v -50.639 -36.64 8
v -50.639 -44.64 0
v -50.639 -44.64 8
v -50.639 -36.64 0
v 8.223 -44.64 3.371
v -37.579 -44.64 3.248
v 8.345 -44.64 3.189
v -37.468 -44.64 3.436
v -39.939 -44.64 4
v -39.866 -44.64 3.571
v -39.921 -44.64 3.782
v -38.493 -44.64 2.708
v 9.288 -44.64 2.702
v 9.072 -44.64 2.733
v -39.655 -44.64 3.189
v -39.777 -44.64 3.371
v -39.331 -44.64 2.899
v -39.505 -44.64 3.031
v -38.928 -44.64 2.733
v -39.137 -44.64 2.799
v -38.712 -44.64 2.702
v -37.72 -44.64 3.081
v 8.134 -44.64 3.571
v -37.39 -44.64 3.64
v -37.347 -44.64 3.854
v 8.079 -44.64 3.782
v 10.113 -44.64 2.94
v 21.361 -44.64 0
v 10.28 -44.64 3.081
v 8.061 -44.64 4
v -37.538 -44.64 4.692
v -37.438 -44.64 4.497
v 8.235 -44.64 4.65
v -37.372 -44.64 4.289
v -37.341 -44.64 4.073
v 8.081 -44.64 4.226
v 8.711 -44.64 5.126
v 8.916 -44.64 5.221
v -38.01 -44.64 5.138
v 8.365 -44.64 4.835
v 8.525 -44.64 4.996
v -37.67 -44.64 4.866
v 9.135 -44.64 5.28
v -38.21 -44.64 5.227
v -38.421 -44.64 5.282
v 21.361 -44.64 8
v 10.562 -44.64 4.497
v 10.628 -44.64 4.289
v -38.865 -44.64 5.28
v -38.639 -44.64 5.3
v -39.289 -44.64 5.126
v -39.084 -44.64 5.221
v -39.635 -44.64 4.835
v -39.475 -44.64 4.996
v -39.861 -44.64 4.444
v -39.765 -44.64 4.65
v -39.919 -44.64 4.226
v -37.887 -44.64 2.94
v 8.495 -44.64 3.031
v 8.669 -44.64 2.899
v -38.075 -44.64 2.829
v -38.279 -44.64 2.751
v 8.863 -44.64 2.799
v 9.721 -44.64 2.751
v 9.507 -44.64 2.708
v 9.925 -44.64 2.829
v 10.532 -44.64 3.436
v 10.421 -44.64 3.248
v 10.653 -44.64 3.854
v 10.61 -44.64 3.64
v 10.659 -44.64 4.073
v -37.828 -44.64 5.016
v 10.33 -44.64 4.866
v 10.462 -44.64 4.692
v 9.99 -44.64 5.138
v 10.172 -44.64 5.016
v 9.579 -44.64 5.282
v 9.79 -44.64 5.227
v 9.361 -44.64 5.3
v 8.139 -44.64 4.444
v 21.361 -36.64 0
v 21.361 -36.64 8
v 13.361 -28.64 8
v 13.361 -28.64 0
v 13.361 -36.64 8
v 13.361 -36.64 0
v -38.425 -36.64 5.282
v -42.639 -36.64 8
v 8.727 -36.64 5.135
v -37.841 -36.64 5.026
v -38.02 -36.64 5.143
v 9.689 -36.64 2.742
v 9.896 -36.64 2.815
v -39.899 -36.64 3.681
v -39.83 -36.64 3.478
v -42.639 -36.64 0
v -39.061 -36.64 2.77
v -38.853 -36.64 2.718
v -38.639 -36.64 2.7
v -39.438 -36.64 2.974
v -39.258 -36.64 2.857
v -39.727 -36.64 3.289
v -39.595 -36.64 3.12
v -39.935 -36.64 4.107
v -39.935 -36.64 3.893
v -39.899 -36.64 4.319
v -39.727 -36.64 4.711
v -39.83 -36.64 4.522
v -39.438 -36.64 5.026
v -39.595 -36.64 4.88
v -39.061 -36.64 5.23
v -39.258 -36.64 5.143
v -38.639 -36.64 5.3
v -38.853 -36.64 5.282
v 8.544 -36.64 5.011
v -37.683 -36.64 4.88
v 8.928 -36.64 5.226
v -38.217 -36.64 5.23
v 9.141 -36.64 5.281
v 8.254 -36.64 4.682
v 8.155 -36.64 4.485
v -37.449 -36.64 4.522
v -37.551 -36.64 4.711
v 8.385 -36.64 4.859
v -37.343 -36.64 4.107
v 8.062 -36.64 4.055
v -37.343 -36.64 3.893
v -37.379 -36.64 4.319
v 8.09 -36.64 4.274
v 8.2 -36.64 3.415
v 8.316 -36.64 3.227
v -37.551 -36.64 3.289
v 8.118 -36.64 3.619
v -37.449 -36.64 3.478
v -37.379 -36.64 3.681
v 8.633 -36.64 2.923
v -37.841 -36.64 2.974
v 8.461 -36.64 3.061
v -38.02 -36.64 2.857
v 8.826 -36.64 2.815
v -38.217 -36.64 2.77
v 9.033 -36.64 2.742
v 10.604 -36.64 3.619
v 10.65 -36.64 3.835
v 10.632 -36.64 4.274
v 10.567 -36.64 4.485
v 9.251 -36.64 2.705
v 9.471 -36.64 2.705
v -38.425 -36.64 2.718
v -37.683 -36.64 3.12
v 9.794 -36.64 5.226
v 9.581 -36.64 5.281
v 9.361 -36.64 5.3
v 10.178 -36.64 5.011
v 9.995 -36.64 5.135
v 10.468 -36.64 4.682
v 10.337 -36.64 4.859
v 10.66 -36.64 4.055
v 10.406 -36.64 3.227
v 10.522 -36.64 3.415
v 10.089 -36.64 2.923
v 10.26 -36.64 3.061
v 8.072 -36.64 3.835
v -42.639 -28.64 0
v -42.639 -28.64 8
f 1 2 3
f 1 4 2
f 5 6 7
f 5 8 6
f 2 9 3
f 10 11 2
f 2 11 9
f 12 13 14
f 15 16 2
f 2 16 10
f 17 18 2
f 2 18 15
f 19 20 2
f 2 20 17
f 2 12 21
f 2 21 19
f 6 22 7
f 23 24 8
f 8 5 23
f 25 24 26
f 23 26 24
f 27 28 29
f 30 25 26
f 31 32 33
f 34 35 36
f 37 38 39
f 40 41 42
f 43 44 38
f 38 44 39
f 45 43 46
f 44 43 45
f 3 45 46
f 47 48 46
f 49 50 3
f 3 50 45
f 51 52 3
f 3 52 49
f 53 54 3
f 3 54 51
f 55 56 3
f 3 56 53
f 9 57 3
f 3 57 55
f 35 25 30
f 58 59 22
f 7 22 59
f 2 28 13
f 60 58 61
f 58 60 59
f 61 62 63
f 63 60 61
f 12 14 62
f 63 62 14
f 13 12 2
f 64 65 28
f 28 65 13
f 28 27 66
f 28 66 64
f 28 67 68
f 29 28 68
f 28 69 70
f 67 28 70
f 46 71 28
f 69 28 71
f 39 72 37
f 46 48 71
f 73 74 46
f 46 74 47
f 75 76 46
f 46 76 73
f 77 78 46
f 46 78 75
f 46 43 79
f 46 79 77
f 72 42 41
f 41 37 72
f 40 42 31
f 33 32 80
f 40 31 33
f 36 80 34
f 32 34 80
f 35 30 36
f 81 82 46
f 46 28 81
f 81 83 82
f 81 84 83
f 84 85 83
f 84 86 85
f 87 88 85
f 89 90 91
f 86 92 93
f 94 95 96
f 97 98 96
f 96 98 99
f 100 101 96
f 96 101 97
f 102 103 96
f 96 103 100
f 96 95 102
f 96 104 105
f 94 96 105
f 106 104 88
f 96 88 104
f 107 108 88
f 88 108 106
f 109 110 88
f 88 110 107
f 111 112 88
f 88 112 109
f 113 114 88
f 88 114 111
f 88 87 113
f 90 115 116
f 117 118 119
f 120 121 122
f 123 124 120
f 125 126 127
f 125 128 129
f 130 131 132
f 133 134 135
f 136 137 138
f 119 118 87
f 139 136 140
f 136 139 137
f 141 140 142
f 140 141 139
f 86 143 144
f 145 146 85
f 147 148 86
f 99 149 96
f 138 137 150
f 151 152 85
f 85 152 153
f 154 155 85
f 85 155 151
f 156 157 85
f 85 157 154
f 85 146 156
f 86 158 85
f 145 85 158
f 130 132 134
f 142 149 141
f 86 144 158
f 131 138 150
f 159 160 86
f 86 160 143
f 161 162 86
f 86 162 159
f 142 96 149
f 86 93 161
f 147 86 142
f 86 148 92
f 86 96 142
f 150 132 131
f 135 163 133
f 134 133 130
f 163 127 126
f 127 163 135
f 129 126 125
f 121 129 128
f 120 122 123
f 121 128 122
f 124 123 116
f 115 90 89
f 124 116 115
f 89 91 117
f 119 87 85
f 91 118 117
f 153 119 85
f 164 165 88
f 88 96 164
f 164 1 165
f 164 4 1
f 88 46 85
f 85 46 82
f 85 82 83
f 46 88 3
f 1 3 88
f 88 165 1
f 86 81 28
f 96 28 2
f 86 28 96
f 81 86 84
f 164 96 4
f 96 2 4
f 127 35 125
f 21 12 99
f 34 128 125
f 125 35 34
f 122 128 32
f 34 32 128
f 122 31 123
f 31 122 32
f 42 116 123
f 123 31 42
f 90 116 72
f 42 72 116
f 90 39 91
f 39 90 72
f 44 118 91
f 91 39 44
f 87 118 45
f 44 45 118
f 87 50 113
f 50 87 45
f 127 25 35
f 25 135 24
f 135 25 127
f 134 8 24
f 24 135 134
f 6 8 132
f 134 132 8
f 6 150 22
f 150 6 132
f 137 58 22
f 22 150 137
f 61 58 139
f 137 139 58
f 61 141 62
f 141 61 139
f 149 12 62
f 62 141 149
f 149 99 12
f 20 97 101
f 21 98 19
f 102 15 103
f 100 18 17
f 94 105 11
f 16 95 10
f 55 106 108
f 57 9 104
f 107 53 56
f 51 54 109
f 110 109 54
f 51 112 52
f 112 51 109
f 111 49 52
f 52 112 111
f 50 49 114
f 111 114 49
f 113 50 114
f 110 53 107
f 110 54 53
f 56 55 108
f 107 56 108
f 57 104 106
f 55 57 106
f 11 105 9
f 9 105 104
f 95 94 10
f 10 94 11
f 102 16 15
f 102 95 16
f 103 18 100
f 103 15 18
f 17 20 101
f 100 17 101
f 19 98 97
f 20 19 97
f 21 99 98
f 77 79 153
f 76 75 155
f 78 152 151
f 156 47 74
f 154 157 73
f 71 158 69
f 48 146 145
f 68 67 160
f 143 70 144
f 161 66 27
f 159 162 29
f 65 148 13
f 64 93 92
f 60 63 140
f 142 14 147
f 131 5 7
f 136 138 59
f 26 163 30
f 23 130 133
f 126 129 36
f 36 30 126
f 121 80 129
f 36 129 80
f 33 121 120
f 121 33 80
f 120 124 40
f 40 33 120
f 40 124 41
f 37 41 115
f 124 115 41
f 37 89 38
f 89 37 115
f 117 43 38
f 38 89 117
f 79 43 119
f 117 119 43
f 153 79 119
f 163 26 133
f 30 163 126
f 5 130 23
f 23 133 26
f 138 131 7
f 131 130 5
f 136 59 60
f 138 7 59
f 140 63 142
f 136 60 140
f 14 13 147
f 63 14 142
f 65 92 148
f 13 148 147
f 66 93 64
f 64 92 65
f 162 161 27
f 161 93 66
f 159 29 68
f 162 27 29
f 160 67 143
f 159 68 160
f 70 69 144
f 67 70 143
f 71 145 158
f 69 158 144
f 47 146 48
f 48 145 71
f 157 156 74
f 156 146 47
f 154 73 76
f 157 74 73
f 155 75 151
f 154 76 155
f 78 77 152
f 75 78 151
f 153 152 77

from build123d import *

# Parameters (mm, degrees)
BOSS_EXTRUDE1_DEPTH = 8
CUT_EXTRUDE1_REACH  = 53.887
SKETCH2_R           = 1.3


with BuildPart() as part:
    # Sketch1 → Boss-Extrude1 (new body)
    with BuildSketch(Plane(origin=(0, 0, 0), x_dir=(0, 1, 0), z_dir=(0, 0, 1))):
        Polygon((-44.64033264, 50.63902284), (-44.64033264, -21.36097716), (-36.64033264, -21.36097716), (-28.64033264, -13.36097716), (-36.64033264, -13.36097716), (-36.64033264, 42.63902284), (-28.64033264, 42.63902284), (-36.64033264, 50.63902284), align=None)
    extrude(amount=BOSS_EXTRUDE1_DEPTH)

    # Sketch2 → Cut-Extrude1 (cut, up to next)
    with BuildSketch(Plane(origin=(0, -36.64033264, 0), x_dir=(-1, 0, 0), z_dir=(0, 1, 0)), mode=Mode.PRIVATE) as cut_extrude1_sk1:
        with Locations(Location((-9.36097716, 4, 0), (0, 0, 90))):
            Circle(SKETCH2_R)
    cut_extrude1_tool1 = extrude(cut_extrude1_sk1.sketch, amount=-CUT_EXTRUDE1_REACH, mode=Mode.PRIVATE) & part.part
    # Sketch2 → Cut-Extrude1 (cut, up to next)
    with BuildSketch(Plane(origin=(0, -36.64033264, 0), x_dir=(-1, 0, 0), z_dir=(0, 1, 0)), mode=Mode.PRIVATE) as cut_extrude1_sk2:
        with Locations((38.63902284, 4)):
            Circle(SKETCH2_R)
    cut_extrude1_tool2 = extrude(cut_extrude1_sk2.sketch, amount=-CUT_EXTRUDE1_REACH, mode=Mode.PRIVATE) & part.part
    add(cut_extrude1_tool1.solids().sort_by_distance((9.360977, -36.640333, 4))[0], mode=Mode.SUBTRACT)
    add(cut_extrude1_tool2.solids().sort_by_distance((-38.639023, -36.640333, 4))[0], mode=Mode.SUBTRACT)


solid = part.part
